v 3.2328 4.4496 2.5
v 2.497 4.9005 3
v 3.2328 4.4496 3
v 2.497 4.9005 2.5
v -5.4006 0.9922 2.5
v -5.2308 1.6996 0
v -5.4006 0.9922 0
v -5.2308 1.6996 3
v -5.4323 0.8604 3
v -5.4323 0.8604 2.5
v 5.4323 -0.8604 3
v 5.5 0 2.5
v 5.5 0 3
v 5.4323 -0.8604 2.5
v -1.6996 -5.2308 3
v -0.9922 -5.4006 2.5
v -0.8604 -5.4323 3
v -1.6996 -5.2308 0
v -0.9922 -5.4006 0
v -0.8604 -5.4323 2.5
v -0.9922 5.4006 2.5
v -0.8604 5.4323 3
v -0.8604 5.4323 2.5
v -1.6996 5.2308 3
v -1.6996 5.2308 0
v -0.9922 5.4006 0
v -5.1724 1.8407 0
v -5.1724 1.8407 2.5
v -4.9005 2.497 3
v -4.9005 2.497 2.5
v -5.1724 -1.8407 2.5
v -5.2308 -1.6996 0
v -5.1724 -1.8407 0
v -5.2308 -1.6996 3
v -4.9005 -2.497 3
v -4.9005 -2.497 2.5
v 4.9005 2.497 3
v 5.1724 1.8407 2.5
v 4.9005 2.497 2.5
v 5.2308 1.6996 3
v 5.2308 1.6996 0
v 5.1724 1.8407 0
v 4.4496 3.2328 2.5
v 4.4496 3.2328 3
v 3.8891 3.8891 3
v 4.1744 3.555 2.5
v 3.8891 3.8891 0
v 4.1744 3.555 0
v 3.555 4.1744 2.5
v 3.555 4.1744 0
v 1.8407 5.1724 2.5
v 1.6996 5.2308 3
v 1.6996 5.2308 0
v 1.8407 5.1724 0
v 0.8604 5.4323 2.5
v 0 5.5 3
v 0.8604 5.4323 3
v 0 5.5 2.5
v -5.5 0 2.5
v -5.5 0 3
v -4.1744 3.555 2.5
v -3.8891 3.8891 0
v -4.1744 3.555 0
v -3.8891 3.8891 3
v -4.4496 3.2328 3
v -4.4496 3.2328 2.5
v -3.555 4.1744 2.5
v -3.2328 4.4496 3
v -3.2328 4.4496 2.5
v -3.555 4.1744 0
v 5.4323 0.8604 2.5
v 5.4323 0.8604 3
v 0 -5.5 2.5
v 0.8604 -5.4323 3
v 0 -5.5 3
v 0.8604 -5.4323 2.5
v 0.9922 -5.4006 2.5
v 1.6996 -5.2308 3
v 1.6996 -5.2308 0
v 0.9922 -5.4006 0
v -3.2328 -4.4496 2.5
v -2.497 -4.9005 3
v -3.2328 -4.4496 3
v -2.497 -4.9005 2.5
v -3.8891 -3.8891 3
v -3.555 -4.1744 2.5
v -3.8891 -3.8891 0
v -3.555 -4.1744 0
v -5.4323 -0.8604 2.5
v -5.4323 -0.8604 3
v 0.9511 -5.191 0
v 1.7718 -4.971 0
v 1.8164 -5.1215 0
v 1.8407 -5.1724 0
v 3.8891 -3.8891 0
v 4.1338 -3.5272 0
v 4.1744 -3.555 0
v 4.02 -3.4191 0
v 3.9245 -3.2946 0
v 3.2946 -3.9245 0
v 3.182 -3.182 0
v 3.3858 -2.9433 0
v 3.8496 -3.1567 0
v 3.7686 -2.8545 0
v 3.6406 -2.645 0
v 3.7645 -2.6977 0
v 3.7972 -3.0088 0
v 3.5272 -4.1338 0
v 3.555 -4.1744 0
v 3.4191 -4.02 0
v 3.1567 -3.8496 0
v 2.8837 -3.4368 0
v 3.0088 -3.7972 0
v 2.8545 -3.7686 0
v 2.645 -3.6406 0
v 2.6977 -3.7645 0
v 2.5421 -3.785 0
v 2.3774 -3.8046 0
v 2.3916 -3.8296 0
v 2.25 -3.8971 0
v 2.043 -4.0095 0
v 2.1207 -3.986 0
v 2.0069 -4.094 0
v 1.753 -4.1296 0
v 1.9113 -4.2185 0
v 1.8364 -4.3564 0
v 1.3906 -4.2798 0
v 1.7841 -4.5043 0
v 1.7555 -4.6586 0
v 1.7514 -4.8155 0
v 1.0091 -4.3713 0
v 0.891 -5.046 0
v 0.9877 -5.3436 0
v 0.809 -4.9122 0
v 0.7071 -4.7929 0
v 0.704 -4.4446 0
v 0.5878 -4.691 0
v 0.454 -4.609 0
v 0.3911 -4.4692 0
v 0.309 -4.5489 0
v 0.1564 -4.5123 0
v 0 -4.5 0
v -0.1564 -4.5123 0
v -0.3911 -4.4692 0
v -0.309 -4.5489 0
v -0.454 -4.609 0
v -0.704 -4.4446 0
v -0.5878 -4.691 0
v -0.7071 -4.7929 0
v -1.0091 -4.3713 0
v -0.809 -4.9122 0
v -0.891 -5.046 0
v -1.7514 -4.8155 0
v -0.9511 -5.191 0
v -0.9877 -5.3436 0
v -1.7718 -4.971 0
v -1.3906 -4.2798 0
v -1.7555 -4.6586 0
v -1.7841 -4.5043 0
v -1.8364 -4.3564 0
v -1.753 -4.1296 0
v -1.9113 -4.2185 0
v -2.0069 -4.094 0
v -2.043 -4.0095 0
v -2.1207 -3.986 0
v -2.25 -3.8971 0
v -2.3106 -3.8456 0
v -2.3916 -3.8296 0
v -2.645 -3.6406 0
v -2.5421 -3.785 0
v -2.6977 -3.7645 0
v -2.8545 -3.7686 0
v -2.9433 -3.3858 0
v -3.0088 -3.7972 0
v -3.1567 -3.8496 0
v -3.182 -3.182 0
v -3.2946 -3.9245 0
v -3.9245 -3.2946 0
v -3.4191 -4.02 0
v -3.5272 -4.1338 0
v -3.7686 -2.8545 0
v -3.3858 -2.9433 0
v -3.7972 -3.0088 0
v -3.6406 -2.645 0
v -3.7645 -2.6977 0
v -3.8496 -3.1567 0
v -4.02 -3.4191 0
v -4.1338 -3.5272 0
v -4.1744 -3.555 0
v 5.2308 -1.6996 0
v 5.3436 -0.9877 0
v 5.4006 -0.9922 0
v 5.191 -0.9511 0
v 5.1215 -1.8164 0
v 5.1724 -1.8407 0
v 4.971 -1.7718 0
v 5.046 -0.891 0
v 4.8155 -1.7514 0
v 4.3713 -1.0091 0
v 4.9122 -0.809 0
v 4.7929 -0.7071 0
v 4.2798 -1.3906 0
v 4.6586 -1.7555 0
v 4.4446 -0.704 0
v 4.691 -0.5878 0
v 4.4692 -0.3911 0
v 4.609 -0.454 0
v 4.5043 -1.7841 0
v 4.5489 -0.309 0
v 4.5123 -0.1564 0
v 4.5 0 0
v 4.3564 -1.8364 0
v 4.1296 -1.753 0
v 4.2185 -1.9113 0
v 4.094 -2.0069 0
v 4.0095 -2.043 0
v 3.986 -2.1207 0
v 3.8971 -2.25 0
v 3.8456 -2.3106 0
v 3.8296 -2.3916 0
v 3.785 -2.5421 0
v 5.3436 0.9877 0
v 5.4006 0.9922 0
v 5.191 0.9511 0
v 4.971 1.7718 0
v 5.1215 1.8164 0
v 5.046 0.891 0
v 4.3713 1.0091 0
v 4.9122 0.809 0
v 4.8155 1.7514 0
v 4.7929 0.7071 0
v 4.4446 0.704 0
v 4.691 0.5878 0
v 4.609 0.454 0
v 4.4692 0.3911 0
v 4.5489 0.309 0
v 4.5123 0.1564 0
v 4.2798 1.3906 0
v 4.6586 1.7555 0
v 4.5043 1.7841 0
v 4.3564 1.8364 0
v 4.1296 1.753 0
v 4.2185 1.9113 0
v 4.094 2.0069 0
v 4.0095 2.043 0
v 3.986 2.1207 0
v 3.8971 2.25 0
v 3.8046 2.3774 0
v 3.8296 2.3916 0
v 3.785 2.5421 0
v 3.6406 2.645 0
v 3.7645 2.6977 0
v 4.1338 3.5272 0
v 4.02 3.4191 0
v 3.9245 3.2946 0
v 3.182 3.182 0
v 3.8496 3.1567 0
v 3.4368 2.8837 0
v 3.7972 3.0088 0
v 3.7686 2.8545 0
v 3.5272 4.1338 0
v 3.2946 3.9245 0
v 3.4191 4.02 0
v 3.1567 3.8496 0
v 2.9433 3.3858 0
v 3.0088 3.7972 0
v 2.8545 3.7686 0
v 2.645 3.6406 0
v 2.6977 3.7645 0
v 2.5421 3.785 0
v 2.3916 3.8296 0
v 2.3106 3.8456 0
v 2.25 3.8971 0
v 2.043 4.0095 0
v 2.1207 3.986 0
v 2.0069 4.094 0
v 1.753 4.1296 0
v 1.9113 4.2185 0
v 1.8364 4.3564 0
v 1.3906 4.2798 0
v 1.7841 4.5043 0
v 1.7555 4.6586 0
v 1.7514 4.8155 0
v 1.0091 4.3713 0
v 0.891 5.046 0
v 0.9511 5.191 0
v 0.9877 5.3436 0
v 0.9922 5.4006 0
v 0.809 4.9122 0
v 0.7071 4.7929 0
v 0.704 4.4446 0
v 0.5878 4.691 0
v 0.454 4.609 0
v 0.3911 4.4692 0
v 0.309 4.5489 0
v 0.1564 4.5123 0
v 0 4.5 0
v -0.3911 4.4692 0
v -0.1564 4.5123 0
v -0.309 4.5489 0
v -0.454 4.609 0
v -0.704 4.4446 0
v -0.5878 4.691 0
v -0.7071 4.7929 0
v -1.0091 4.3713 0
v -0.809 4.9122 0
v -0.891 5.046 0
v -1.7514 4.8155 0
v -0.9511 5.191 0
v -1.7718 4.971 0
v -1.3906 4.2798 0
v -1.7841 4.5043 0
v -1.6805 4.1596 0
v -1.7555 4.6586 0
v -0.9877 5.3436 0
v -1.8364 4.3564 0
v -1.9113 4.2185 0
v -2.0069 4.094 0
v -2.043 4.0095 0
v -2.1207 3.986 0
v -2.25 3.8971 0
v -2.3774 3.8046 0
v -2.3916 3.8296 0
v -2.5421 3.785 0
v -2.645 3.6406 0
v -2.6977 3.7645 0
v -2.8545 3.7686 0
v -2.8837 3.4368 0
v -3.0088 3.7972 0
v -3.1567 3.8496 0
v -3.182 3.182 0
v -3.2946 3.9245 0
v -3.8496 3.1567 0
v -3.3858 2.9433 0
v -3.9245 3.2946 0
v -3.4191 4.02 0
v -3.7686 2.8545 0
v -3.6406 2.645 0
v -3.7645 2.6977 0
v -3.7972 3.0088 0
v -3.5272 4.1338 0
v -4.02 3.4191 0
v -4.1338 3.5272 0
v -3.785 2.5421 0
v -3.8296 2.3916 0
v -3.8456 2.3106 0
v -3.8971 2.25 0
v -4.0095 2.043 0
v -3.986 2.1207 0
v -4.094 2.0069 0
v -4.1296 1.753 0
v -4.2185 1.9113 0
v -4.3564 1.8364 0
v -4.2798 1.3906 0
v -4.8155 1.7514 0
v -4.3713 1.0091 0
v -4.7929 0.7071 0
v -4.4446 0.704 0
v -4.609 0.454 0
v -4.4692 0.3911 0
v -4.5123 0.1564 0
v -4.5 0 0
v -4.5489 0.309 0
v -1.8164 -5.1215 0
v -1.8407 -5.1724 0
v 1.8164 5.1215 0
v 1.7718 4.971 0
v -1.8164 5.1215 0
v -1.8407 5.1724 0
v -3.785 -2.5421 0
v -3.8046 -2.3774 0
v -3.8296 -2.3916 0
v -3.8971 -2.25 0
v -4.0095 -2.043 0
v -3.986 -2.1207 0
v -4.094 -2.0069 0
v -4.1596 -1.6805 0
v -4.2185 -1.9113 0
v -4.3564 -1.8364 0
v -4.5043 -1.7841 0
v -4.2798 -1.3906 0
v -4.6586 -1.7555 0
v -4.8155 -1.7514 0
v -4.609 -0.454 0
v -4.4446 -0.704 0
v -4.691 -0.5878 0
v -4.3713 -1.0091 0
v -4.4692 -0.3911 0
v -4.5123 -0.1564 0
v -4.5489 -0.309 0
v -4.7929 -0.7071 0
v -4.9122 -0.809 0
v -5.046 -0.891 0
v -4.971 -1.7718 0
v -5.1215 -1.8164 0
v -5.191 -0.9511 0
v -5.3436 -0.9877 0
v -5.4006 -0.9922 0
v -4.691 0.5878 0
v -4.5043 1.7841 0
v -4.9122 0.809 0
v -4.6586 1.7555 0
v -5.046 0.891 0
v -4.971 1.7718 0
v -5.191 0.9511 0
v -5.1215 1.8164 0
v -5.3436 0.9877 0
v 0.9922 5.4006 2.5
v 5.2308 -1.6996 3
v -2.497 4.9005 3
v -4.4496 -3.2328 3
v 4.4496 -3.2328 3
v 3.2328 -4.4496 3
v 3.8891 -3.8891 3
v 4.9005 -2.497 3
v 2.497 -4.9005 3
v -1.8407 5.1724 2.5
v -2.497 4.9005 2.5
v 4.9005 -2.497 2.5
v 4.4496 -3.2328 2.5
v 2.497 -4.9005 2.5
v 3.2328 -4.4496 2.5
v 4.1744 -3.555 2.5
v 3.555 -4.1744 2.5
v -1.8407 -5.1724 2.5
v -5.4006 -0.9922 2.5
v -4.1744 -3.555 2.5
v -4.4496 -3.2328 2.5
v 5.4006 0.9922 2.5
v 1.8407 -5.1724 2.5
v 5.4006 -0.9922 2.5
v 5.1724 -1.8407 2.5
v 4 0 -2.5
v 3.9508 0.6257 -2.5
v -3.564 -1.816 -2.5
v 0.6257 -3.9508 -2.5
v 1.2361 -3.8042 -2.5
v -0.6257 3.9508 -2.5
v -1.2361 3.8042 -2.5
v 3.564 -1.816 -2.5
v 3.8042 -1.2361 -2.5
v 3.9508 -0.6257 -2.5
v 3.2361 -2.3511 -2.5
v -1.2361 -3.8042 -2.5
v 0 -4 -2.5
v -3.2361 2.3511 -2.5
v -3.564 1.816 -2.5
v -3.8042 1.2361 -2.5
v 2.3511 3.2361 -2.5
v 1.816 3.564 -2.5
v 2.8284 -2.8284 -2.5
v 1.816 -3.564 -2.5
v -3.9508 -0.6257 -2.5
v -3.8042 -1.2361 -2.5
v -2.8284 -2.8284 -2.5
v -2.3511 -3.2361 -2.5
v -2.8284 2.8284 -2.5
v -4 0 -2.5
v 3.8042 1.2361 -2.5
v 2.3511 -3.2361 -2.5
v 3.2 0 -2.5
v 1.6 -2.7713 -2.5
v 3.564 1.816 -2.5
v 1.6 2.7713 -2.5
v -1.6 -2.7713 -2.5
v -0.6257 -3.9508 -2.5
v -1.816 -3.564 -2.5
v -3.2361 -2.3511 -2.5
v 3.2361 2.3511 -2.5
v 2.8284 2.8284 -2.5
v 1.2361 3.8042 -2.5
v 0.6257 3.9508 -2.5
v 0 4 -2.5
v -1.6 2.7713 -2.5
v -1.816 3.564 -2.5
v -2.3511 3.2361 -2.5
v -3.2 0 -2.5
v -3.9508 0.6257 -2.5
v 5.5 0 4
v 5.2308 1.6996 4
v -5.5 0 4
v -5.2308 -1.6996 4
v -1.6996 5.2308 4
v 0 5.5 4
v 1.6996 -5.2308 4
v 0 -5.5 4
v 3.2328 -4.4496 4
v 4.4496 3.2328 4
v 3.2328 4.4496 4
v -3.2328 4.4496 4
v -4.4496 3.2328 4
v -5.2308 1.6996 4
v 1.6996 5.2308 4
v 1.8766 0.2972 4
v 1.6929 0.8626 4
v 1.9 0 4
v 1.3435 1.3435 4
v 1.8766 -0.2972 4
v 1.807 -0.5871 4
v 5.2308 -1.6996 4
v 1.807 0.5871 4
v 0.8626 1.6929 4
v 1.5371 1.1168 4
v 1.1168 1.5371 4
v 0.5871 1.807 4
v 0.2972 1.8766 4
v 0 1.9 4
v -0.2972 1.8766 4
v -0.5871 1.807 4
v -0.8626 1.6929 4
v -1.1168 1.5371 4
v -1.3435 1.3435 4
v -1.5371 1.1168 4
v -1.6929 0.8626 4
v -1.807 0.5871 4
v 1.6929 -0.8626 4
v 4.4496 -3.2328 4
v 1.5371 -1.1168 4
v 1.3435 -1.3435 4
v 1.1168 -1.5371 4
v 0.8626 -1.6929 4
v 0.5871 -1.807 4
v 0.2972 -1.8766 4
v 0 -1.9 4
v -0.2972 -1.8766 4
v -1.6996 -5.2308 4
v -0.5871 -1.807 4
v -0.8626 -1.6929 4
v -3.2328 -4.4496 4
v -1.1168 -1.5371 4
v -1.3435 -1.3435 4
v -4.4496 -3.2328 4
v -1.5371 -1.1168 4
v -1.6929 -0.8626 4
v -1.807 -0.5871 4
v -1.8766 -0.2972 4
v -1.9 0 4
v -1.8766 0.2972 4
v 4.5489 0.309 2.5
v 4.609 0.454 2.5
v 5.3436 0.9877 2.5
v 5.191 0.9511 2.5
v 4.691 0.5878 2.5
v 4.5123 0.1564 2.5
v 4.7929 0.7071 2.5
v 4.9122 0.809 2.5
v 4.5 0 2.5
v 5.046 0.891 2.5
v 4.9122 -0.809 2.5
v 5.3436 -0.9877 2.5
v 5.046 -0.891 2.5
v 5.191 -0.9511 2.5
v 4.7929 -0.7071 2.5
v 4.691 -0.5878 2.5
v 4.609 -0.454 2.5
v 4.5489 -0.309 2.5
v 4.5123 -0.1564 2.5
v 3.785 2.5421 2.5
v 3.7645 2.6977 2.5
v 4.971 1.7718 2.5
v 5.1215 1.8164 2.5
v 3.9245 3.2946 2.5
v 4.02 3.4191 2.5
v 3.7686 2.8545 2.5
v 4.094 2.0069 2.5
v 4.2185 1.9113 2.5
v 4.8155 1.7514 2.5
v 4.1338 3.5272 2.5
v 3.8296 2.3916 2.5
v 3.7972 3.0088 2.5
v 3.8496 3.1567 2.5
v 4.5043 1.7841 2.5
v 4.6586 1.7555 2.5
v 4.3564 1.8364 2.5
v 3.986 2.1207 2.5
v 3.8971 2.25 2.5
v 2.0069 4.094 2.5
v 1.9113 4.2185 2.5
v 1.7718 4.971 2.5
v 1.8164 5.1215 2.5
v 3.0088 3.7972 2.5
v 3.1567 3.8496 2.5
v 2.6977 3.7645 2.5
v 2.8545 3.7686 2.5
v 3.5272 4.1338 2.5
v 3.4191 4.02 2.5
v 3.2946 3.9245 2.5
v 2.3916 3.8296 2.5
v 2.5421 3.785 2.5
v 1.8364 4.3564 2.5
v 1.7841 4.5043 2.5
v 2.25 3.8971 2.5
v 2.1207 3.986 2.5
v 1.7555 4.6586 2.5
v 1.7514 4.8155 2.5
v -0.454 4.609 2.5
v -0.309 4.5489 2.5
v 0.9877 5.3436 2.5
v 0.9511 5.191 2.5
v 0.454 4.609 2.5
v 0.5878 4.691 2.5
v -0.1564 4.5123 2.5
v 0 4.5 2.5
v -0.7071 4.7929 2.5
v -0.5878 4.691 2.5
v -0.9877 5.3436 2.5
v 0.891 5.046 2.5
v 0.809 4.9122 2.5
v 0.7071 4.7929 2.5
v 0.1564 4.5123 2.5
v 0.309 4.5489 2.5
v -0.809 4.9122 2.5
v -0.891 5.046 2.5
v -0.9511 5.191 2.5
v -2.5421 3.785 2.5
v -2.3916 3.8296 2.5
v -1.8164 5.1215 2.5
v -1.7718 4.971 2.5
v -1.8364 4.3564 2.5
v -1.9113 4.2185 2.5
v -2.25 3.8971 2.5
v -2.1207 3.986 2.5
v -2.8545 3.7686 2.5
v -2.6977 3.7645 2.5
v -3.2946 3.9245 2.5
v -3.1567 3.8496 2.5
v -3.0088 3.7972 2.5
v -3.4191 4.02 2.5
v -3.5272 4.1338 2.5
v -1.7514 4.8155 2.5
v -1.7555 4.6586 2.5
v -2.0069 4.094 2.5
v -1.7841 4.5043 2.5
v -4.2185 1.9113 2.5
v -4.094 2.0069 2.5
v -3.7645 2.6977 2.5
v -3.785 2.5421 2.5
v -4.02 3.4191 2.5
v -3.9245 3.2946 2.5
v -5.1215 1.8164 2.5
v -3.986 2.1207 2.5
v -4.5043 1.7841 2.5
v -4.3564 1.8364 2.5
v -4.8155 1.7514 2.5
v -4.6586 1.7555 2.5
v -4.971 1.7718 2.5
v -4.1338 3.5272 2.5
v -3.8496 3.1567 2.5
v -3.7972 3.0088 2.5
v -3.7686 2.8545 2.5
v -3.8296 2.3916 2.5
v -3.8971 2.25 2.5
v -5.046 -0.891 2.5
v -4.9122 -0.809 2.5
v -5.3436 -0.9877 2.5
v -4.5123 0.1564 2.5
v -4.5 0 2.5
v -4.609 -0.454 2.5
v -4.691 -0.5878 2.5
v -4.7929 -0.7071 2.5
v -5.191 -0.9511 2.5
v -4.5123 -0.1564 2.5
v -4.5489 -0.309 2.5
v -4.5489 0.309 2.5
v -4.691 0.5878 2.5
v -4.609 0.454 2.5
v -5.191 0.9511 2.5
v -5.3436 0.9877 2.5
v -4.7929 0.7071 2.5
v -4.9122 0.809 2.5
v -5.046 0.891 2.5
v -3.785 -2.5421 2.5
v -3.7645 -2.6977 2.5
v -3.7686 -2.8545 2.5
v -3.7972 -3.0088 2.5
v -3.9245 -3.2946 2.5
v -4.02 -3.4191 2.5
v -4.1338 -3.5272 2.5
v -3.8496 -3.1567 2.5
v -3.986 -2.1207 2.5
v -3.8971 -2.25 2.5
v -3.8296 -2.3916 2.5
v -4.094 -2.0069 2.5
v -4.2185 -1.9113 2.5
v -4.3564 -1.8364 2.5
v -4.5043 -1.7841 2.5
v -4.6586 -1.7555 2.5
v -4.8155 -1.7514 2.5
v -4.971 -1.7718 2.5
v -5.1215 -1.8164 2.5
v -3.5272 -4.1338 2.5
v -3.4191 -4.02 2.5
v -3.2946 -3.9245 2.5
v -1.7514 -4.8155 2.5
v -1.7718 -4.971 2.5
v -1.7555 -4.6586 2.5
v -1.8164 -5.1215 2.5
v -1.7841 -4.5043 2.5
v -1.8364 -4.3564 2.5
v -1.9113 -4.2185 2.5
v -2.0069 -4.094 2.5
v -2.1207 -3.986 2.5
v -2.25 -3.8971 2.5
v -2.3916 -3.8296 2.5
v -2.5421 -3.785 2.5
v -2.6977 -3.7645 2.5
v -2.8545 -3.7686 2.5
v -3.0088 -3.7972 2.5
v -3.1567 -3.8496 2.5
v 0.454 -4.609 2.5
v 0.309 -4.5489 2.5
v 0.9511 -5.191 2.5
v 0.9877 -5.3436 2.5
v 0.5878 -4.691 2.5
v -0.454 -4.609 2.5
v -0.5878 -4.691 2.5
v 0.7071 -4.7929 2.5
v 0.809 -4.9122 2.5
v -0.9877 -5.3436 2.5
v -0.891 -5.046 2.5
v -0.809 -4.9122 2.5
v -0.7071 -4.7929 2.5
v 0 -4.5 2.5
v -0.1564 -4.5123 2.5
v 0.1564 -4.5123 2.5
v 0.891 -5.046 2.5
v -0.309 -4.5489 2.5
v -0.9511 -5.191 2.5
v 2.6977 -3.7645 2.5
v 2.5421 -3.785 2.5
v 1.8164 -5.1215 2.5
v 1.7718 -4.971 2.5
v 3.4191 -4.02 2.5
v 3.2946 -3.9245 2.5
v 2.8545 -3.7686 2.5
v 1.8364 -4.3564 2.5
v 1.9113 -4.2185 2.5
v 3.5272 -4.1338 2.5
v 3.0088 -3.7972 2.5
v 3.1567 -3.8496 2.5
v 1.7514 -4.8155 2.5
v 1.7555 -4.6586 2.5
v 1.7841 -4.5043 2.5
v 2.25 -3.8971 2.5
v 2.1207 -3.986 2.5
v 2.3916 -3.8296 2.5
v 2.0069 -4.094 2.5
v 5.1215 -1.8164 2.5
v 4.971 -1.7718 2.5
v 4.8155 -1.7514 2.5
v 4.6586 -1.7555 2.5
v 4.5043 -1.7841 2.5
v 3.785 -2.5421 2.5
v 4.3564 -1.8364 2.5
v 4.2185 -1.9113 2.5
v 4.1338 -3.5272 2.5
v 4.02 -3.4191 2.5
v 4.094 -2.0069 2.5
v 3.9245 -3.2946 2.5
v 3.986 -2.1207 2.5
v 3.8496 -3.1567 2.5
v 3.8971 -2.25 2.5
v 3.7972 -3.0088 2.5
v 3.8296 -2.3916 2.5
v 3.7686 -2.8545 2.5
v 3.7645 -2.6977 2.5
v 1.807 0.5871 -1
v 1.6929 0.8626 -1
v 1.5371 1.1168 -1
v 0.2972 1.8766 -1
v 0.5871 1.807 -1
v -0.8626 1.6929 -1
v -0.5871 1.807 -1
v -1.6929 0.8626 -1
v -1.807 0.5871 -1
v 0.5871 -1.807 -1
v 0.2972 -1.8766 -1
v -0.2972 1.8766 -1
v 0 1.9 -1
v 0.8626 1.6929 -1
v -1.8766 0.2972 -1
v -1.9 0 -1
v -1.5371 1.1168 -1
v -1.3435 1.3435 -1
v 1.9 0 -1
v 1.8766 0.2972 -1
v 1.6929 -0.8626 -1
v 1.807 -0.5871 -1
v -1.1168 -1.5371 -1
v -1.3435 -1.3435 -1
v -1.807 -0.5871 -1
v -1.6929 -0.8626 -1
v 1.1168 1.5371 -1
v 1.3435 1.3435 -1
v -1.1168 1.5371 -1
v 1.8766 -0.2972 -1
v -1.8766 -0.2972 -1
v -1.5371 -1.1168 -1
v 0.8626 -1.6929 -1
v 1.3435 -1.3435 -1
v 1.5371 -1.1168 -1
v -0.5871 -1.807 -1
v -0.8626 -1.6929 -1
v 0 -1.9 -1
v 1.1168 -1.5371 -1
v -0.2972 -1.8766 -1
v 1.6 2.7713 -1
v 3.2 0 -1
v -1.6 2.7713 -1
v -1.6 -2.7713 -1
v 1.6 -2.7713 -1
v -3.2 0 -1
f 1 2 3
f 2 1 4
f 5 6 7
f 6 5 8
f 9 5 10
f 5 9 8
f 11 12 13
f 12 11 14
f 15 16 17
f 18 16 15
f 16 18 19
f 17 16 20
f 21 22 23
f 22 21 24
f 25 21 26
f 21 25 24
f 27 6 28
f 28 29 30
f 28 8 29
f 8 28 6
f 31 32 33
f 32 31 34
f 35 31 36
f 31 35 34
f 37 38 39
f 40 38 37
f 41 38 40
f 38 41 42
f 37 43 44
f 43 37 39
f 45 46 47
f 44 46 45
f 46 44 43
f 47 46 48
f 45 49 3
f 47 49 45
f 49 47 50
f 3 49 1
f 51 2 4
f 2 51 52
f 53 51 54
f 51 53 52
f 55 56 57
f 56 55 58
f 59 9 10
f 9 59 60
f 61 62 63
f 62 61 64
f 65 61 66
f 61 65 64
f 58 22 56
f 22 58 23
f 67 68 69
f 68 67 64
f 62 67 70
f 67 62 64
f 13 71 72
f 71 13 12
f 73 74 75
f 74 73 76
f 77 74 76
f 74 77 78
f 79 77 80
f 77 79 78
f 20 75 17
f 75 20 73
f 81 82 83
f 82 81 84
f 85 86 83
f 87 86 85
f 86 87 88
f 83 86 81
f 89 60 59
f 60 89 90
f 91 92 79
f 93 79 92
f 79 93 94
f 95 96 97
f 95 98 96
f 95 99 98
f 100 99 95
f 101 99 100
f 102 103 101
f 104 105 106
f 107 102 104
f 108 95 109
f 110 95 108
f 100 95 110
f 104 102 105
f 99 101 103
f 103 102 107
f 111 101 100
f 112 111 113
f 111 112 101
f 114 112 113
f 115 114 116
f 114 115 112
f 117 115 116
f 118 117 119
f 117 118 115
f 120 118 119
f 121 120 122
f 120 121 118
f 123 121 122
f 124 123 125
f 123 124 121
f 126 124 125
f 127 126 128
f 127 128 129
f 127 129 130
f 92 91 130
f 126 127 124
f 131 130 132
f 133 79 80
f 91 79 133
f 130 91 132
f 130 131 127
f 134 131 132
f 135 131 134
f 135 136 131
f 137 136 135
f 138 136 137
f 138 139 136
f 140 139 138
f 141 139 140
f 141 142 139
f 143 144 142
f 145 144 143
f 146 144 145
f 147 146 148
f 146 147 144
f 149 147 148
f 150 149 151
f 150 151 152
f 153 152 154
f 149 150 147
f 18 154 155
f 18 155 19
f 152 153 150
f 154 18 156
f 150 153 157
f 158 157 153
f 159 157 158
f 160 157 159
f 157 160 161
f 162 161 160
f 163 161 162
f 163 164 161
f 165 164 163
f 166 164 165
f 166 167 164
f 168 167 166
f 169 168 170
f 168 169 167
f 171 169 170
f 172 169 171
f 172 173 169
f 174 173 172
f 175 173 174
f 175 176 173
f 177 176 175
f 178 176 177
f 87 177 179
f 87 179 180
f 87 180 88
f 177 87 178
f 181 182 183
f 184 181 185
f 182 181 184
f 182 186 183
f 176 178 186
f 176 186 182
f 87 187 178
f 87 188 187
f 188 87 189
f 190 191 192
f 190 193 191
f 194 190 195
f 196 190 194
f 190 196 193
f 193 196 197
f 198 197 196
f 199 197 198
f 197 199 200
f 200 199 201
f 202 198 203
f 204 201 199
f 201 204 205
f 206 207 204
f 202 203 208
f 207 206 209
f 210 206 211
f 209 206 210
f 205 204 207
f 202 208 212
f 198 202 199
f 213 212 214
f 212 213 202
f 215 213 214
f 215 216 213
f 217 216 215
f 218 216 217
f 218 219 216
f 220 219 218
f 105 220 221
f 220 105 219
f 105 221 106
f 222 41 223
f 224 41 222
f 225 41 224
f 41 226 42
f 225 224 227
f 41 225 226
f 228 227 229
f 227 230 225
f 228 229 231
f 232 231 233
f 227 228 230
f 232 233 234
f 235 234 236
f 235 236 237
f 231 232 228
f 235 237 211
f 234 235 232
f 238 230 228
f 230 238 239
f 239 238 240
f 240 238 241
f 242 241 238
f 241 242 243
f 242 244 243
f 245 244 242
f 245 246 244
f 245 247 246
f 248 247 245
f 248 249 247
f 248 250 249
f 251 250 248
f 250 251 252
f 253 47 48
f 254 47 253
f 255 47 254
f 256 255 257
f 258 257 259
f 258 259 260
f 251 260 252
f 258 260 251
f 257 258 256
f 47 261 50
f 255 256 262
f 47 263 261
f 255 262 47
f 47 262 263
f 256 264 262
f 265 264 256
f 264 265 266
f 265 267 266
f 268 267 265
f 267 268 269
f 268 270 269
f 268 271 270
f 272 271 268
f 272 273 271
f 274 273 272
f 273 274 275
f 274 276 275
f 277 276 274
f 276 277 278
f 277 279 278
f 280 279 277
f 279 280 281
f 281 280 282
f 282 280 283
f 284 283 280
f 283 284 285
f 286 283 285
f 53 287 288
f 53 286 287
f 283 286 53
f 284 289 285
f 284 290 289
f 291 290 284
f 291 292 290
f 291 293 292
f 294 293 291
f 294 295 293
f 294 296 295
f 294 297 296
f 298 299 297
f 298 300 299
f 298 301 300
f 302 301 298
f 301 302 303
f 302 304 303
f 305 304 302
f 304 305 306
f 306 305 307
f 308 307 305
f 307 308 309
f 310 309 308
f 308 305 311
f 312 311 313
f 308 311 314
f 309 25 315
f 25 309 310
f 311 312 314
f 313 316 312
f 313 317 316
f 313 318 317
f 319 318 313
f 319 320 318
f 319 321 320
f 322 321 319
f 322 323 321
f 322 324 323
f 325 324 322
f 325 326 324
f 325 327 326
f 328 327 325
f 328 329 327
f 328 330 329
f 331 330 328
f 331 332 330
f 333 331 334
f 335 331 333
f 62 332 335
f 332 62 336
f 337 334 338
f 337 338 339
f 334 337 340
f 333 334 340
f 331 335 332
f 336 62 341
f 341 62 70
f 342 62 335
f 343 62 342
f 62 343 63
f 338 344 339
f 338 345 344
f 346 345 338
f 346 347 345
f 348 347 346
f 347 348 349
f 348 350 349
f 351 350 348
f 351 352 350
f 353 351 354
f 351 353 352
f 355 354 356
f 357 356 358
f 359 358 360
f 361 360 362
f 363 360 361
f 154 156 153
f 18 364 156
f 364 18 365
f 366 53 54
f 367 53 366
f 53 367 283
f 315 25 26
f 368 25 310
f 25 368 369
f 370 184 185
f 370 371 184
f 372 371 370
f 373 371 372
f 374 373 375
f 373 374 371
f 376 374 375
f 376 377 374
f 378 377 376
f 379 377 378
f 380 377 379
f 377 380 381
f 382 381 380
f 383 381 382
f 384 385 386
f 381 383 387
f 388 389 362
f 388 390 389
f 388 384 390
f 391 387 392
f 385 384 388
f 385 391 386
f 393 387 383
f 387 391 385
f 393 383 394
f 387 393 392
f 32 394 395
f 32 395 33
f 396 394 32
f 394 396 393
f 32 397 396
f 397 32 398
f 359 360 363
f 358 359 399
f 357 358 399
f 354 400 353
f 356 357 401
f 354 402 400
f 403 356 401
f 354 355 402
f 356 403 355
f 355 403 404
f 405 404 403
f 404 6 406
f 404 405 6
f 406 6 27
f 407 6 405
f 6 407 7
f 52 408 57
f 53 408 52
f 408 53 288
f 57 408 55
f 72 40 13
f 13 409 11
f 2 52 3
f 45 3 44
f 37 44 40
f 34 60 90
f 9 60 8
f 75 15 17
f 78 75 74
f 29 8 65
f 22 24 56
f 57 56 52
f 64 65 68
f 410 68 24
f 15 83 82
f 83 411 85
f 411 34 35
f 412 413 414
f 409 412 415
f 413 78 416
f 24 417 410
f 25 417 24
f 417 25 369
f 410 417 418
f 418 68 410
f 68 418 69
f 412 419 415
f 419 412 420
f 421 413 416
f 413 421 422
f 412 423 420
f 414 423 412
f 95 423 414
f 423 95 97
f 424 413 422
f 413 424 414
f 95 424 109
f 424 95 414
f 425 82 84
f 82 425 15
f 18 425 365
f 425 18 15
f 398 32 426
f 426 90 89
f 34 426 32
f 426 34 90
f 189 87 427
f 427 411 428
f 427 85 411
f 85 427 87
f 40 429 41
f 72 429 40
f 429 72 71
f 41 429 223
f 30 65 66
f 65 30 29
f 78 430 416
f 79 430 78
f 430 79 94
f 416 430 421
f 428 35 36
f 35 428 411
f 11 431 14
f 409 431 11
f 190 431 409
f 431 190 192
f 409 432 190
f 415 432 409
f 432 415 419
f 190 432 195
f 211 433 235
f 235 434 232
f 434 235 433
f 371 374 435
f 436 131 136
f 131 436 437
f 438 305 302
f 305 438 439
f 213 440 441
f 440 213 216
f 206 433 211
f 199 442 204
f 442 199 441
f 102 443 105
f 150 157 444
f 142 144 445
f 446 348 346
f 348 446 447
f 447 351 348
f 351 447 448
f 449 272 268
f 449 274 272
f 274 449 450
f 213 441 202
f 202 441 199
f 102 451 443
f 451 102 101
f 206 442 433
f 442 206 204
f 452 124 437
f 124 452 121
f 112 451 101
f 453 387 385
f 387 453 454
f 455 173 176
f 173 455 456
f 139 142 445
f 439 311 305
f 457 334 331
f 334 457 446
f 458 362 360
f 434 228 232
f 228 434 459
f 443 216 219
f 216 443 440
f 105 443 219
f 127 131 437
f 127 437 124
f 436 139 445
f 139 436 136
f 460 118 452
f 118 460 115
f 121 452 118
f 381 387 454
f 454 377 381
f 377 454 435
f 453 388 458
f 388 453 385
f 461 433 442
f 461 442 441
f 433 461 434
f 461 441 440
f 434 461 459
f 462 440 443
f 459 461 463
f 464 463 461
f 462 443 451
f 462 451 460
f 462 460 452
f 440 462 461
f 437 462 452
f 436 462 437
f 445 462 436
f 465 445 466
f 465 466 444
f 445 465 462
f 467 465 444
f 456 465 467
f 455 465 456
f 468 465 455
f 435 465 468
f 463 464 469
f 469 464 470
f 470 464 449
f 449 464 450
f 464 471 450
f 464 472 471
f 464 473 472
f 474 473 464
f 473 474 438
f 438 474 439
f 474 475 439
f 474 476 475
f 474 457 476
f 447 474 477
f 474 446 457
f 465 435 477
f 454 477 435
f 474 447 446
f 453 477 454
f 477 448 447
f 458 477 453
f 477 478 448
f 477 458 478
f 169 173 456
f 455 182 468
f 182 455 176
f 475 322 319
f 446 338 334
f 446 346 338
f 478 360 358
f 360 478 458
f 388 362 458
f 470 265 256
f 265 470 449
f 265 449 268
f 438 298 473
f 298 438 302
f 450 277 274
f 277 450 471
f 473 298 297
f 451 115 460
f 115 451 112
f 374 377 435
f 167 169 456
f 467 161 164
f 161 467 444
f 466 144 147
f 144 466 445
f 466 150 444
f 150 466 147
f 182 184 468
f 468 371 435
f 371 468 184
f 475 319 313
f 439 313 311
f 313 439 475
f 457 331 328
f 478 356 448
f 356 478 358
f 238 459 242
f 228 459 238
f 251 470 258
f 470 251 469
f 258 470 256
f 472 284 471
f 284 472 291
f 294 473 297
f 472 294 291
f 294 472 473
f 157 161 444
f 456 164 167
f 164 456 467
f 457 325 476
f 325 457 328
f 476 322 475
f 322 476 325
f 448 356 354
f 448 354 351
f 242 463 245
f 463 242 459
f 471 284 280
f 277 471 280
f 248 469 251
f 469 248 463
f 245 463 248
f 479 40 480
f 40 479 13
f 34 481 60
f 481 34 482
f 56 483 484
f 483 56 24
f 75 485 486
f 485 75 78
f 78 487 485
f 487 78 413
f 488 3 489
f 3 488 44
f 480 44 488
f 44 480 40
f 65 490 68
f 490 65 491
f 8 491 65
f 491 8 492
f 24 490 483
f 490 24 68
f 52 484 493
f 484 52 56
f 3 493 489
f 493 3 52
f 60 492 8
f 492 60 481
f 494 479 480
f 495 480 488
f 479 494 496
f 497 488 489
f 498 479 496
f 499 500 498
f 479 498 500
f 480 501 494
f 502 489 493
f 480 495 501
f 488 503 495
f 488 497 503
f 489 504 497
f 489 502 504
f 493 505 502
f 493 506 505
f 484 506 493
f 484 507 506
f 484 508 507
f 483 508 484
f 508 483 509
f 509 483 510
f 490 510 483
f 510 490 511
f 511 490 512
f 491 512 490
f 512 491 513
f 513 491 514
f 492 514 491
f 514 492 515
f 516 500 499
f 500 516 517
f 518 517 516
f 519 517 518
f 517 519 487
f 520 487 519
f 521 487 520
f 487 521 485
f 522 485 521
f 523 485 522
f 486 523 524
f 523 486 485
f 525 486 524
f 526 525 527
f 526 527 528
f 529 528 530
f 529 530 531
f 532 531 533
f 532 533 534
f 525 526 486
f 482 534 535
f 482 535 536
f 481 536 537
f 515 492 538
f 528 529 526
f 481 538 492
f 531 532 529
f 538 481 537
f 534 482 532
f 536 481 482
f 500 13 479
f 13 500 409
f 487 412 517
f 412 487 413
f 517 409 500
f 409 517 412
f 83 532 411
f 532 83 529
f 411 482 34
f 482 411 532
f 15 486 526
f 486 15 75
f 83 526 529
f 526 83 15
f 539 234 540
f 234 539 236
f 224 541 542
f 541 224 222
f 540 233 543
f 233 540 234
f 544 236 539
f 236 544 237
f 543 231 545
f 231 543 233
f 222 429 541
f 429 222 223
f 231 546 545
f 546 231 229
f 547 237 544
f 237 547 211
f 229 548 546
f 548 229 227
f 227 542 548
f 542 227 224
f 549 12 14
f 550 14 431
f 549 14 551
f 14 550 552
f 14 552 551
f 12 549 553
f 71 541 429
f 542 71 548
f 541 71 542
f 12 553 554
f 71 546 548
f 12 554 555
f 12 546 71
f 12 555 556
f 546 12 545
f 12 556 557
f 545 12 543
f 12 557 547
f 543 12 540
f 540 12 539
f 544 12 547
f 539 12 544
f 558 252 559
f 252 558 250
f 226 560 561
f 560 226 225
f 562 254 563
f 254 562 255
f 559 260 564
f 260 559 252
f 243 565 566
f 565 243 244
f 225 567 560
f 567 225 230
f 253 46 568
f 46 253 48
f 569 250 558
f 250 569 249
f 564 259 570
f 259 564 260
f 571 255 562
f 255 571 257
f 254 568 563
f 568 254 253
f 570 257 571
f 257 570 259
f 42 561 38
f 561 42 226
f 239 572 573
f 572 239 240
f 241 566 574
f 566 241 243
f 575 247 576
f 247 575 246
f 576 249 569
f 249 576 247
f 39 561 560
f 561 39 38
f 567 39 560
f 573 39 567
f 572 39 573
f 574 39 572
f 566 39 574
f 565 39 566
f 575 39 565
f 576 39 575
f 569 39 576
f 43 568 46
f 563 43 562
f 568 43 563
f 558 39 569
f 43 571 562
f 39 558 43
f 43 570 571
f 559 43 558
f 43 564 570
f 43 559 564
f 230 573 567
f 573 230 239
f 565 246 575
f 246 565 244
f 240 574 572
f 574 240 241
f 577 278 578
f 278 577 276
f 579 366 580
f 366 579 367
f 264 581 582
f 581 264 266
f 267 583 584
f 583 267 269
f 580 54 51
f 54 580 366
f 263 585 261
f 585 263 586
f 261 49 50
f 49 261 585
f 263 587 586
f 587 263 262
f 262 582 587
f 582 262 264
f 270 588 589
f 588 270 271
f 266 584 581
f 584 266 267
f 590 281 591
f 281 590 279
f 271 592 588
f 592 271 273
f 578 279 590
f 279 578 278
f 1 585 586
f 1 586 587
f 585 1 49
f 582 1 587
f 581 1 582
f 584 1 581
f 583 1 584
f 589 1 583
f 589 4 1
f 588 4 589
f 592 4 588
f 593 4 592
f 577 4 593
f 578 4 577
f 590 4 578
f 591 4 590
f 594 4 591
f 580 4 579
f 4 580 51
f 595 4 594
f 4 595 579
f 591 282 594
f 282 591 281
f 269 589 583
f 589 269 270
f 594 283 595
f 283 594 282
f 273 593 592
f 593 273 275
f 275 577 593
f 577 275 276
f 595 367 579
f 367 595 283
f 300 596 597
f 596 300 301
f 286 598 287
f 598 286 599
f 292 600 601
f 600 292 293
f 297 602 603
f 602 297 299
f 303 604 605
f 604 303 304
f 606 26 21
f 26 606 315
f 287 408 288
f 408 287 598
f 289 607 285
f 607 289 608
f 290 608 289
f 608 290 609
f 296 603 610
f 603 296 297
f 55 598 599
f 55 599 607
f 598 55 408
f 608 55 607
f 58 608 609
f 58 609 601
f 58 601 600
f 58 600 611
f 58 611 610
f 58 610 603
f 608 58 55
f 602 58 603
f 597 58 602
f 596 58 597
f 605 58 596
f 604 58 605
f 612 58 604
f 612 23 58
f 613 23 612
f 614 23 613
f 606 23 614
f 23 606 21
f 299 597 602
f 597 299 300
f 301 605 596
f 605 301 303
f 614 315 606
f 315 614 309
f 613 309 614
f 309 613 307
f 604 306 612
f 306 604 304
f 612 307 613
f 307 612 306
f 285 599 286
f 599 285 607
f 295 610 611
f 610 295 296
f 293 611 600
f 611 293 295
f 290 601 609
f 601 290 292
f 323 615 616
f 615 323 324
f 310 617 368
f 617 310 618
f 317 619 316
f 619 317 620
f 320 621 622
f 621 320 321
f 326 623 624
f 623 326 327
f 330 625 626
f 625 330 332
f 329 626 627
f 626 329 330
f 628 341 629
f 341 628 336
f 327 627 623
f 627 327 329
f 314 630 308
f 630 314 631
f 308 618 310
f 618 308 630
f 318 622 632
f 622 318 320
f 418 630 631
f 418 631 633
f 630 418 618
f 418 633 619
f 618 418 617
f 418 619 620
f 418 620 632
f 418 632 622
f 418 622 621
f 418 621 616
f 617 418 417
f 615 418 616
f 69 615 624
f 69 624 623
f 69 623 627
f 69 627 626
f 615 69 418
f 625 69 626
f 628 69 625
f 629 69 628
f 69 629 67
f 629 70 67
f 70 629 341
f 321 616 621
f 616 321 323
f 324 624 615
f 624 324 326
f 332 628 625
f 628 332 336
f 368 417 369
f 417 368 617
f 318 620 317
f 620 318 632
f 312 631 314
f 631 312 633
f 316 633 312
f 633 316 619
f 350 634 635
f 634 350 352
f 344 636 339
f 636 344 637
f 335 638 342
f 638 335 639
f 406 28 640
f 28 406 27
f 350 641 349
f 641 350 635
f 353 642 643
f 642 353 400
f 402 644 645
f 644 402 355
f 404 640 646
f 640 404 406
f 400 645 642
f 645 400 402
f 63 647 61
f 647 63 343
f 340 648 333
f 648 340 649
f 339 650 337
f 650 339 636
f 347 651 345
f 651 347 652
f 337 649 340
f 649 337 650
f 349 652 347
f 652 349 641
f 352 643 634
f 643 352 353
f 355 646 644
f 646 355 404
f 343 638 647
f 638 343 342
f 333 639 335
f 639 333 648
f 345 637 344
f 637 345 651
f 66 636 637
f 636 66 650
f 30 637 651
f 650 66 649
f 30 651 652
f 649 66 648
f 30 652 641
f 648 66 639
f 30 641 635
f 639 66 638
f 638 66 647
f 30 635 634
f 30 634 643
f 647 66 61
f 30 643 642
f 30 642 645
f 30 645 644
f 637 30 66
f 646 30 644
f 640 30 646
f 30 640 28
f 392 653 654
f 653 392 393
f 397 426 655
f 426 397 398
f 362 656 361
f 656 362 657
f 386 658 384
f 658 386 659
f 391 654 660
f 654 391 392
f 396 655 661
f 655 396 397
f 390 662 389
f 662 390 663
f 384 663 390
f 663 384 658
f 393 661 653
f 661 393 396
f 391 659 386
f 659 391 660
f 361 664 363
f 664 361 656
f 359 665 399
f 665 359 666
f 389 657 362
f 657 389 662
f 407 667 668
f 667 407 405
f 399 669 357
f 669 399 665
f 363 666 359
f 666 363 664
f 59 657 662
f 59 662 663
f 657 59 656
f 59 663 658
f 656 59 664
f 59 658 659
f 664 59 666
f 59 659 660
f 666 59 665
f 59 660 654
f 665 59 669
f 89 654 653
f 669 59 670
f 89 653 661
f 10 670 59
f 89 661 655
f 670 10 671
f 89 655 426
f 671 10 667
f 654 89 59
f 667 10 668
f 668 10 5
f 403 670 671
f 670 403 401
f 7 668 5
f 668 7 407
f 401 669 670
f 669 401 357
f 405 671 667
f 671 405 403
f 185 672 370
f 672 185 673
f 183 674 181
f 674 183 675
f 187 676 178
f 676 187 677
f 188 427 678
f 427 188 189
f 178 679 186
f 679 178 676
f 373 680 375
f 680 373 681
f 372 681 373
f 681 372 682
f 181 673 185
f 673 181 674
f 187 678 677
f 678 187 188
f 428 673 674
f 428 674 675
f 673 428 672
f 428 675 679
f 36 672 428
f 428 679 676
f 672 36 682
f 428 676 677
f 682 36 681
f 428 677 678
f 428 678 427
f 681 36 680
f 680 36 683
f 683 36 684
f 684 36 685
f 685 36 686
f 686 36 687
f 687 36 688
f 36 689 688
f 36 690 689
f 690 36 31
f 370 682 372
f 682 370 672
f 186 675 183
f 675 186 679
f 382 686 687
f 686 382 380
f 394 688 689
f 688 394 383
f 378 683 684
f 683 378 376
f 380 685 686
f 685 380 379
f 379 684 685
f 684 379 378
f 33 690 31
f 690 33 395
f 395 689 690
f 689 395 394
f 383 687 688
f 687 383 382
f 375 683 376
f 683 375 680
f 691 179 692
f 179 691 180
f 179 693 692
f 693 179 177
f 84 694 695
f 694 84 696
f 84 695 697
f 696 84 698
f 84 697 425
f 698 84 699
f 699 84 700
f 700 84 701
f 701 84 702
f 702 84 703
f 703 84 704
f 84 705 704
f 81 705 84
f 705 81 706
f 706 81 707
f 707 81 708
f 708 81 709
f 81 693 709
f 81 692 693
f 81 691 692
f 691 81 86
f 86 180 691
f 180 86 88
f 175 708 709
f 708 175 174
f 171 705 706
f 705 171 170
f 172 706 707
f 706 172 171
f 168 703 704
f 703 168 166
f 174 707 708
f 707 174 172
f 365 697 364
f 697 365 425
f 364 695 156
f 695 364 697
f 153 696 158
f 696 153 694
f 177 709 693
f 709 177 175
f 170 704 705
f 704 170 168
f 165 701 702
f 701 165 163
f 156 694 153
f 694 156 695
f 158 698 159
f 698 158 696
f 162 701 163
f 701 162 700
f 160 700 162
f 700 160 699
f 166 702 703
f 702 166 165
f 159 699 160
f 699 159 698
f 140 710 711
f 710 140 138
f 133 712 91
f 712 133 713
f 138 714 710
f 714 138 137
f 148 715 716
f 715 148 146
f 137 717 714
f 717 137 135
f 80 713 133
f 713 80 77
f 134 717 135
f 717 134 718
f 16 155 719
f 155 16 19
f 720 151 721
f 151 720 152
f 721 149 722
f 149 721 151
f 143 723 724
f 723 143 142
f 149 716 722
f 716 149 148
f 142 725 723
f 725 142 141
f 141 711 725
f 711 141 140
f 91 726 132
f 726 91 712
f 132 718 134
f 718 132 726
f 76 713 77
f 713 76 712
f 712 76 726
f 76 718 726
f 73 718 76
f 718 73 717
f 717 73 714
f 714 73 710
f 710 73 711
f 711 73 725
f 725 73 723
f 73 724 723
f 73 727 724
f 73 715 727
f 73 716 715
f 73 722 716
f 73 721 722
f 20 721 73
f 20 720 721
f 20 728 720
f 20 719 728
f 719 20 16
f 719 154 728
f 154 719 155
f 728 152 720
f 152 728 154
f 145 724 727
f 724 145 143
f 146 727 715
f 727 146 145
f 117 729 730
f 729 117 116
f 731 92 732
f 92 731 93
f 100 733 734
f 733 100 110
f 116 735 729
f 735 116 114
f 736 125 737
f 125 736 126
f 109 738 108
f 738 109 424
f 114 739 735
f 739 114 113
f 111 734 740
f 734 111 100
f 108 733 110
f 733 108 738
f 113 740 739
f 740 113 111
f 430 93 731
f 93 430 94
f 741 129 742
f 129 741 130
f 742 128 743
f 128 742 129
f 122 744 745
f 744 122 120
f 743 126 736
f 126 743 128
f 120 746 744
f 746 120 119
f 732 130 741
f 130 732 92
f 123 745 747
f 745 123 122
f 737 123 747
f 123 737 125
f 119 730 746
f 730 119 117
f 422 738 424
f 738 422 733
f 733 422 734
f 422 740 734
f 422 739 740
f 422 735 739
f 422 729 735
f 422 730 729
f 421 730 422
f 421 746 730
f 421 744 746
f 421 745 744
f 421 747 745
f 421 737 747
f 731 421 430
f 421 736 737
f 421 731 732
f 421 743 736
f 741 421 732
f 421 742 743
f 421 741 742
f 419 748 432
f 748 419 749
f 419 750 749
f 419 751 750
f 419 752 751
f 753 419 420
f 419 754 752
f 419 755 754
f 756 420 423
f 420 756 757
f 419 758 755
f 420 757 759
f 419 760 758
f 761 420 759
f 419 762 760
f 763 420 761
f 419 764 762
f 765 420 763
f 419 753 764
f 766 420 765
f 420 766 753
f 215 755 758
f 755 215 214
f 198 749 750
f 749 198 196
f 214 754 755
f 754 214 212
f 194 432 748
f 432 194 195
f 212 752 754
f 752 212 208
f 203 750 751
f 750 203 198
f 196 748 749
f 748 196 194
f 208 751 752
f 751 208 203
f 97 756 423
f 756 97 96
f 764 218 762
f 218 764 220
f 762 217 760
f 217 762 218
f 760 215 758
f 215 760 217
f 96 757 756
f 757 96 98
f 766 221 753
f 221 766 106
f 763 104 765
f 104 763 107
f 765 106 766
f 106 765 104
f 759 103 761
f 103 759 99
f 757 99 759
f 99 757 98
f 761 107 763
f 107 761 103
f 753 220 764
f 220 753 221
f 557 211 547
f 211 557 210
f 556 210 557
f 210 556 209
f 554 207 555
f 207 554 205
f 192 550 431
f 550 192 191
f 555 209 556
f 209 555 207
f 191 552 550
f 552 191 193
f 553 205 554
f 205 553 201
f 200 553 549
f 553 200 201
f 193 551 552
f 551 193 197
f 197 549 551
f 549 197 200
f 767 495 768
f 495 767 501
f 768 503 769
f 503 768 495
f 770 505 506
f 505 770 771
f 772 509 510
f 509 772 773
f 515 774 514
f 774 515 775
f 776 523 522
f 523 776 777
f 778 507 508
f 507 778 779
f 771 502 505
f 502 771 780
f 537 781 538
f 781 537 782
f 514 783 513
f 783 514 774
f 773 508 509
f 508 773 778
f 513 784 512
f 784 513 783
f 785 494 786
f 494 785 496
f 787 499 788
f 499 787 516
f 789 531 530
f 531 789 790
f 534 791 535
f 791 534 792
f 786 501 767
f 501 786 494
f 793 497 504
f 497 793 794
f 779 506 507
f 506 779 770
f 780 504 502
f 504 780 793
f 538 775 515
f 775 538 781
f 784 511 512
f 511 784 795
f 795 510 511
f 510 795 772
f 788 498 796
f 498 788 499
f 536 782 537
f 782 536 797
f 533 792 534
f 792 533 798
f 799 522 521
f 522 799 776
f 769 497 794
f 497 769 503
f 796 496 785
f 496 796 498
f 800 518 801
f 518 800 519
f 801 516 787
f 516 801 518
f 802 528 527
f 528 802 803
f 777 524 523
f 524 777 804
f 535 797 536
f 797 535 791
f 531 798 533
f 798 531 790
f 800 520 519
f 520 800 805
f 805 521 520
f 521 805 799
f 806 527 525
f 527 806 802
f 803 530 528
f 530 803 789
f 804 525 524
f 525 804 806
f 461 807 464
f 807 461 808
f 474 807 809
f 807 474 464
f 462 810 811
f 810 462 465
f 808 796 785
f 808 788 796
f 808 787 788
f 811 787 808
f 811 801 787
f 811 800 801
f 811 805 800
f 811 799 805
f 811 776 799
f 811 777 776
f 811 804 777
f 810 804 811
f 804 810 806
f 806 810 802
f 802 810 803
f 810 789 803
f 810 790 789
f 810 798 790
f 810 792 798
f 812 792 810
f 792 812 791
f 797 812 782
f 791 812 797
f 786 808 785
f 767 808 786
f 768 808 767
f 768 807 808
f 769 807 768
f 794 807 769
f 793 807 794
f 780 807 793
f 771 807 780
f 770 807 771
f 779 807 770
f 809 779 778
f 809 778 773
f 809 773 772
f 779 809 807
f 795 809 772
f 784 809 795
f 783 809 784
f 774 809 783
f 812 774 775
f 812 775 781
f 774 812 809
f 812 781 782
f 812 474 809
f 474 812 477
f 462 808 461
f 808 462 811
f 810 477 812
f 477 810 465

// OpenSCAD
m3NutRadius = 3.2;

outerRadius1 = 4;
outerRadius2 = 5.5;
innerRadius = 1.9;

$fn=40;

module tuneButton(){

    difference(){
	union(){

	    cylinder(r=outerRadius2, h=3);
	    cylinder(r1=outerRadius1, r2=outerRadius1+1, h =5,center=true);
/*	    for(i=[0:30:360])rotate([0,0,i])translate([3,0,-3])
	    minkowski(){
		hull(){
		    translate([0,0,5])cube([2,1,2],center=true);
		    translate([0,0,3])cube([2,2,2],center=true);
		}
		cylinder(r=0.5,h=0.5);
	    }*/
            translate([0,0,2]) cylinder(r=outerRadius2, h=2, $fn=20);

	}

	for (i=[0:30:360]) rotate([0,0,i])translate([5.5,0,-2.5]) cylinder(r=1, h=10,center=true);
	cylinder(r=innerRadius, h =12,center=true);

	translate([0,0,-3])cylinder(r=m3NutRadius, h =4, center=true, $fn=6);
    }


    
}

tuneButton();
